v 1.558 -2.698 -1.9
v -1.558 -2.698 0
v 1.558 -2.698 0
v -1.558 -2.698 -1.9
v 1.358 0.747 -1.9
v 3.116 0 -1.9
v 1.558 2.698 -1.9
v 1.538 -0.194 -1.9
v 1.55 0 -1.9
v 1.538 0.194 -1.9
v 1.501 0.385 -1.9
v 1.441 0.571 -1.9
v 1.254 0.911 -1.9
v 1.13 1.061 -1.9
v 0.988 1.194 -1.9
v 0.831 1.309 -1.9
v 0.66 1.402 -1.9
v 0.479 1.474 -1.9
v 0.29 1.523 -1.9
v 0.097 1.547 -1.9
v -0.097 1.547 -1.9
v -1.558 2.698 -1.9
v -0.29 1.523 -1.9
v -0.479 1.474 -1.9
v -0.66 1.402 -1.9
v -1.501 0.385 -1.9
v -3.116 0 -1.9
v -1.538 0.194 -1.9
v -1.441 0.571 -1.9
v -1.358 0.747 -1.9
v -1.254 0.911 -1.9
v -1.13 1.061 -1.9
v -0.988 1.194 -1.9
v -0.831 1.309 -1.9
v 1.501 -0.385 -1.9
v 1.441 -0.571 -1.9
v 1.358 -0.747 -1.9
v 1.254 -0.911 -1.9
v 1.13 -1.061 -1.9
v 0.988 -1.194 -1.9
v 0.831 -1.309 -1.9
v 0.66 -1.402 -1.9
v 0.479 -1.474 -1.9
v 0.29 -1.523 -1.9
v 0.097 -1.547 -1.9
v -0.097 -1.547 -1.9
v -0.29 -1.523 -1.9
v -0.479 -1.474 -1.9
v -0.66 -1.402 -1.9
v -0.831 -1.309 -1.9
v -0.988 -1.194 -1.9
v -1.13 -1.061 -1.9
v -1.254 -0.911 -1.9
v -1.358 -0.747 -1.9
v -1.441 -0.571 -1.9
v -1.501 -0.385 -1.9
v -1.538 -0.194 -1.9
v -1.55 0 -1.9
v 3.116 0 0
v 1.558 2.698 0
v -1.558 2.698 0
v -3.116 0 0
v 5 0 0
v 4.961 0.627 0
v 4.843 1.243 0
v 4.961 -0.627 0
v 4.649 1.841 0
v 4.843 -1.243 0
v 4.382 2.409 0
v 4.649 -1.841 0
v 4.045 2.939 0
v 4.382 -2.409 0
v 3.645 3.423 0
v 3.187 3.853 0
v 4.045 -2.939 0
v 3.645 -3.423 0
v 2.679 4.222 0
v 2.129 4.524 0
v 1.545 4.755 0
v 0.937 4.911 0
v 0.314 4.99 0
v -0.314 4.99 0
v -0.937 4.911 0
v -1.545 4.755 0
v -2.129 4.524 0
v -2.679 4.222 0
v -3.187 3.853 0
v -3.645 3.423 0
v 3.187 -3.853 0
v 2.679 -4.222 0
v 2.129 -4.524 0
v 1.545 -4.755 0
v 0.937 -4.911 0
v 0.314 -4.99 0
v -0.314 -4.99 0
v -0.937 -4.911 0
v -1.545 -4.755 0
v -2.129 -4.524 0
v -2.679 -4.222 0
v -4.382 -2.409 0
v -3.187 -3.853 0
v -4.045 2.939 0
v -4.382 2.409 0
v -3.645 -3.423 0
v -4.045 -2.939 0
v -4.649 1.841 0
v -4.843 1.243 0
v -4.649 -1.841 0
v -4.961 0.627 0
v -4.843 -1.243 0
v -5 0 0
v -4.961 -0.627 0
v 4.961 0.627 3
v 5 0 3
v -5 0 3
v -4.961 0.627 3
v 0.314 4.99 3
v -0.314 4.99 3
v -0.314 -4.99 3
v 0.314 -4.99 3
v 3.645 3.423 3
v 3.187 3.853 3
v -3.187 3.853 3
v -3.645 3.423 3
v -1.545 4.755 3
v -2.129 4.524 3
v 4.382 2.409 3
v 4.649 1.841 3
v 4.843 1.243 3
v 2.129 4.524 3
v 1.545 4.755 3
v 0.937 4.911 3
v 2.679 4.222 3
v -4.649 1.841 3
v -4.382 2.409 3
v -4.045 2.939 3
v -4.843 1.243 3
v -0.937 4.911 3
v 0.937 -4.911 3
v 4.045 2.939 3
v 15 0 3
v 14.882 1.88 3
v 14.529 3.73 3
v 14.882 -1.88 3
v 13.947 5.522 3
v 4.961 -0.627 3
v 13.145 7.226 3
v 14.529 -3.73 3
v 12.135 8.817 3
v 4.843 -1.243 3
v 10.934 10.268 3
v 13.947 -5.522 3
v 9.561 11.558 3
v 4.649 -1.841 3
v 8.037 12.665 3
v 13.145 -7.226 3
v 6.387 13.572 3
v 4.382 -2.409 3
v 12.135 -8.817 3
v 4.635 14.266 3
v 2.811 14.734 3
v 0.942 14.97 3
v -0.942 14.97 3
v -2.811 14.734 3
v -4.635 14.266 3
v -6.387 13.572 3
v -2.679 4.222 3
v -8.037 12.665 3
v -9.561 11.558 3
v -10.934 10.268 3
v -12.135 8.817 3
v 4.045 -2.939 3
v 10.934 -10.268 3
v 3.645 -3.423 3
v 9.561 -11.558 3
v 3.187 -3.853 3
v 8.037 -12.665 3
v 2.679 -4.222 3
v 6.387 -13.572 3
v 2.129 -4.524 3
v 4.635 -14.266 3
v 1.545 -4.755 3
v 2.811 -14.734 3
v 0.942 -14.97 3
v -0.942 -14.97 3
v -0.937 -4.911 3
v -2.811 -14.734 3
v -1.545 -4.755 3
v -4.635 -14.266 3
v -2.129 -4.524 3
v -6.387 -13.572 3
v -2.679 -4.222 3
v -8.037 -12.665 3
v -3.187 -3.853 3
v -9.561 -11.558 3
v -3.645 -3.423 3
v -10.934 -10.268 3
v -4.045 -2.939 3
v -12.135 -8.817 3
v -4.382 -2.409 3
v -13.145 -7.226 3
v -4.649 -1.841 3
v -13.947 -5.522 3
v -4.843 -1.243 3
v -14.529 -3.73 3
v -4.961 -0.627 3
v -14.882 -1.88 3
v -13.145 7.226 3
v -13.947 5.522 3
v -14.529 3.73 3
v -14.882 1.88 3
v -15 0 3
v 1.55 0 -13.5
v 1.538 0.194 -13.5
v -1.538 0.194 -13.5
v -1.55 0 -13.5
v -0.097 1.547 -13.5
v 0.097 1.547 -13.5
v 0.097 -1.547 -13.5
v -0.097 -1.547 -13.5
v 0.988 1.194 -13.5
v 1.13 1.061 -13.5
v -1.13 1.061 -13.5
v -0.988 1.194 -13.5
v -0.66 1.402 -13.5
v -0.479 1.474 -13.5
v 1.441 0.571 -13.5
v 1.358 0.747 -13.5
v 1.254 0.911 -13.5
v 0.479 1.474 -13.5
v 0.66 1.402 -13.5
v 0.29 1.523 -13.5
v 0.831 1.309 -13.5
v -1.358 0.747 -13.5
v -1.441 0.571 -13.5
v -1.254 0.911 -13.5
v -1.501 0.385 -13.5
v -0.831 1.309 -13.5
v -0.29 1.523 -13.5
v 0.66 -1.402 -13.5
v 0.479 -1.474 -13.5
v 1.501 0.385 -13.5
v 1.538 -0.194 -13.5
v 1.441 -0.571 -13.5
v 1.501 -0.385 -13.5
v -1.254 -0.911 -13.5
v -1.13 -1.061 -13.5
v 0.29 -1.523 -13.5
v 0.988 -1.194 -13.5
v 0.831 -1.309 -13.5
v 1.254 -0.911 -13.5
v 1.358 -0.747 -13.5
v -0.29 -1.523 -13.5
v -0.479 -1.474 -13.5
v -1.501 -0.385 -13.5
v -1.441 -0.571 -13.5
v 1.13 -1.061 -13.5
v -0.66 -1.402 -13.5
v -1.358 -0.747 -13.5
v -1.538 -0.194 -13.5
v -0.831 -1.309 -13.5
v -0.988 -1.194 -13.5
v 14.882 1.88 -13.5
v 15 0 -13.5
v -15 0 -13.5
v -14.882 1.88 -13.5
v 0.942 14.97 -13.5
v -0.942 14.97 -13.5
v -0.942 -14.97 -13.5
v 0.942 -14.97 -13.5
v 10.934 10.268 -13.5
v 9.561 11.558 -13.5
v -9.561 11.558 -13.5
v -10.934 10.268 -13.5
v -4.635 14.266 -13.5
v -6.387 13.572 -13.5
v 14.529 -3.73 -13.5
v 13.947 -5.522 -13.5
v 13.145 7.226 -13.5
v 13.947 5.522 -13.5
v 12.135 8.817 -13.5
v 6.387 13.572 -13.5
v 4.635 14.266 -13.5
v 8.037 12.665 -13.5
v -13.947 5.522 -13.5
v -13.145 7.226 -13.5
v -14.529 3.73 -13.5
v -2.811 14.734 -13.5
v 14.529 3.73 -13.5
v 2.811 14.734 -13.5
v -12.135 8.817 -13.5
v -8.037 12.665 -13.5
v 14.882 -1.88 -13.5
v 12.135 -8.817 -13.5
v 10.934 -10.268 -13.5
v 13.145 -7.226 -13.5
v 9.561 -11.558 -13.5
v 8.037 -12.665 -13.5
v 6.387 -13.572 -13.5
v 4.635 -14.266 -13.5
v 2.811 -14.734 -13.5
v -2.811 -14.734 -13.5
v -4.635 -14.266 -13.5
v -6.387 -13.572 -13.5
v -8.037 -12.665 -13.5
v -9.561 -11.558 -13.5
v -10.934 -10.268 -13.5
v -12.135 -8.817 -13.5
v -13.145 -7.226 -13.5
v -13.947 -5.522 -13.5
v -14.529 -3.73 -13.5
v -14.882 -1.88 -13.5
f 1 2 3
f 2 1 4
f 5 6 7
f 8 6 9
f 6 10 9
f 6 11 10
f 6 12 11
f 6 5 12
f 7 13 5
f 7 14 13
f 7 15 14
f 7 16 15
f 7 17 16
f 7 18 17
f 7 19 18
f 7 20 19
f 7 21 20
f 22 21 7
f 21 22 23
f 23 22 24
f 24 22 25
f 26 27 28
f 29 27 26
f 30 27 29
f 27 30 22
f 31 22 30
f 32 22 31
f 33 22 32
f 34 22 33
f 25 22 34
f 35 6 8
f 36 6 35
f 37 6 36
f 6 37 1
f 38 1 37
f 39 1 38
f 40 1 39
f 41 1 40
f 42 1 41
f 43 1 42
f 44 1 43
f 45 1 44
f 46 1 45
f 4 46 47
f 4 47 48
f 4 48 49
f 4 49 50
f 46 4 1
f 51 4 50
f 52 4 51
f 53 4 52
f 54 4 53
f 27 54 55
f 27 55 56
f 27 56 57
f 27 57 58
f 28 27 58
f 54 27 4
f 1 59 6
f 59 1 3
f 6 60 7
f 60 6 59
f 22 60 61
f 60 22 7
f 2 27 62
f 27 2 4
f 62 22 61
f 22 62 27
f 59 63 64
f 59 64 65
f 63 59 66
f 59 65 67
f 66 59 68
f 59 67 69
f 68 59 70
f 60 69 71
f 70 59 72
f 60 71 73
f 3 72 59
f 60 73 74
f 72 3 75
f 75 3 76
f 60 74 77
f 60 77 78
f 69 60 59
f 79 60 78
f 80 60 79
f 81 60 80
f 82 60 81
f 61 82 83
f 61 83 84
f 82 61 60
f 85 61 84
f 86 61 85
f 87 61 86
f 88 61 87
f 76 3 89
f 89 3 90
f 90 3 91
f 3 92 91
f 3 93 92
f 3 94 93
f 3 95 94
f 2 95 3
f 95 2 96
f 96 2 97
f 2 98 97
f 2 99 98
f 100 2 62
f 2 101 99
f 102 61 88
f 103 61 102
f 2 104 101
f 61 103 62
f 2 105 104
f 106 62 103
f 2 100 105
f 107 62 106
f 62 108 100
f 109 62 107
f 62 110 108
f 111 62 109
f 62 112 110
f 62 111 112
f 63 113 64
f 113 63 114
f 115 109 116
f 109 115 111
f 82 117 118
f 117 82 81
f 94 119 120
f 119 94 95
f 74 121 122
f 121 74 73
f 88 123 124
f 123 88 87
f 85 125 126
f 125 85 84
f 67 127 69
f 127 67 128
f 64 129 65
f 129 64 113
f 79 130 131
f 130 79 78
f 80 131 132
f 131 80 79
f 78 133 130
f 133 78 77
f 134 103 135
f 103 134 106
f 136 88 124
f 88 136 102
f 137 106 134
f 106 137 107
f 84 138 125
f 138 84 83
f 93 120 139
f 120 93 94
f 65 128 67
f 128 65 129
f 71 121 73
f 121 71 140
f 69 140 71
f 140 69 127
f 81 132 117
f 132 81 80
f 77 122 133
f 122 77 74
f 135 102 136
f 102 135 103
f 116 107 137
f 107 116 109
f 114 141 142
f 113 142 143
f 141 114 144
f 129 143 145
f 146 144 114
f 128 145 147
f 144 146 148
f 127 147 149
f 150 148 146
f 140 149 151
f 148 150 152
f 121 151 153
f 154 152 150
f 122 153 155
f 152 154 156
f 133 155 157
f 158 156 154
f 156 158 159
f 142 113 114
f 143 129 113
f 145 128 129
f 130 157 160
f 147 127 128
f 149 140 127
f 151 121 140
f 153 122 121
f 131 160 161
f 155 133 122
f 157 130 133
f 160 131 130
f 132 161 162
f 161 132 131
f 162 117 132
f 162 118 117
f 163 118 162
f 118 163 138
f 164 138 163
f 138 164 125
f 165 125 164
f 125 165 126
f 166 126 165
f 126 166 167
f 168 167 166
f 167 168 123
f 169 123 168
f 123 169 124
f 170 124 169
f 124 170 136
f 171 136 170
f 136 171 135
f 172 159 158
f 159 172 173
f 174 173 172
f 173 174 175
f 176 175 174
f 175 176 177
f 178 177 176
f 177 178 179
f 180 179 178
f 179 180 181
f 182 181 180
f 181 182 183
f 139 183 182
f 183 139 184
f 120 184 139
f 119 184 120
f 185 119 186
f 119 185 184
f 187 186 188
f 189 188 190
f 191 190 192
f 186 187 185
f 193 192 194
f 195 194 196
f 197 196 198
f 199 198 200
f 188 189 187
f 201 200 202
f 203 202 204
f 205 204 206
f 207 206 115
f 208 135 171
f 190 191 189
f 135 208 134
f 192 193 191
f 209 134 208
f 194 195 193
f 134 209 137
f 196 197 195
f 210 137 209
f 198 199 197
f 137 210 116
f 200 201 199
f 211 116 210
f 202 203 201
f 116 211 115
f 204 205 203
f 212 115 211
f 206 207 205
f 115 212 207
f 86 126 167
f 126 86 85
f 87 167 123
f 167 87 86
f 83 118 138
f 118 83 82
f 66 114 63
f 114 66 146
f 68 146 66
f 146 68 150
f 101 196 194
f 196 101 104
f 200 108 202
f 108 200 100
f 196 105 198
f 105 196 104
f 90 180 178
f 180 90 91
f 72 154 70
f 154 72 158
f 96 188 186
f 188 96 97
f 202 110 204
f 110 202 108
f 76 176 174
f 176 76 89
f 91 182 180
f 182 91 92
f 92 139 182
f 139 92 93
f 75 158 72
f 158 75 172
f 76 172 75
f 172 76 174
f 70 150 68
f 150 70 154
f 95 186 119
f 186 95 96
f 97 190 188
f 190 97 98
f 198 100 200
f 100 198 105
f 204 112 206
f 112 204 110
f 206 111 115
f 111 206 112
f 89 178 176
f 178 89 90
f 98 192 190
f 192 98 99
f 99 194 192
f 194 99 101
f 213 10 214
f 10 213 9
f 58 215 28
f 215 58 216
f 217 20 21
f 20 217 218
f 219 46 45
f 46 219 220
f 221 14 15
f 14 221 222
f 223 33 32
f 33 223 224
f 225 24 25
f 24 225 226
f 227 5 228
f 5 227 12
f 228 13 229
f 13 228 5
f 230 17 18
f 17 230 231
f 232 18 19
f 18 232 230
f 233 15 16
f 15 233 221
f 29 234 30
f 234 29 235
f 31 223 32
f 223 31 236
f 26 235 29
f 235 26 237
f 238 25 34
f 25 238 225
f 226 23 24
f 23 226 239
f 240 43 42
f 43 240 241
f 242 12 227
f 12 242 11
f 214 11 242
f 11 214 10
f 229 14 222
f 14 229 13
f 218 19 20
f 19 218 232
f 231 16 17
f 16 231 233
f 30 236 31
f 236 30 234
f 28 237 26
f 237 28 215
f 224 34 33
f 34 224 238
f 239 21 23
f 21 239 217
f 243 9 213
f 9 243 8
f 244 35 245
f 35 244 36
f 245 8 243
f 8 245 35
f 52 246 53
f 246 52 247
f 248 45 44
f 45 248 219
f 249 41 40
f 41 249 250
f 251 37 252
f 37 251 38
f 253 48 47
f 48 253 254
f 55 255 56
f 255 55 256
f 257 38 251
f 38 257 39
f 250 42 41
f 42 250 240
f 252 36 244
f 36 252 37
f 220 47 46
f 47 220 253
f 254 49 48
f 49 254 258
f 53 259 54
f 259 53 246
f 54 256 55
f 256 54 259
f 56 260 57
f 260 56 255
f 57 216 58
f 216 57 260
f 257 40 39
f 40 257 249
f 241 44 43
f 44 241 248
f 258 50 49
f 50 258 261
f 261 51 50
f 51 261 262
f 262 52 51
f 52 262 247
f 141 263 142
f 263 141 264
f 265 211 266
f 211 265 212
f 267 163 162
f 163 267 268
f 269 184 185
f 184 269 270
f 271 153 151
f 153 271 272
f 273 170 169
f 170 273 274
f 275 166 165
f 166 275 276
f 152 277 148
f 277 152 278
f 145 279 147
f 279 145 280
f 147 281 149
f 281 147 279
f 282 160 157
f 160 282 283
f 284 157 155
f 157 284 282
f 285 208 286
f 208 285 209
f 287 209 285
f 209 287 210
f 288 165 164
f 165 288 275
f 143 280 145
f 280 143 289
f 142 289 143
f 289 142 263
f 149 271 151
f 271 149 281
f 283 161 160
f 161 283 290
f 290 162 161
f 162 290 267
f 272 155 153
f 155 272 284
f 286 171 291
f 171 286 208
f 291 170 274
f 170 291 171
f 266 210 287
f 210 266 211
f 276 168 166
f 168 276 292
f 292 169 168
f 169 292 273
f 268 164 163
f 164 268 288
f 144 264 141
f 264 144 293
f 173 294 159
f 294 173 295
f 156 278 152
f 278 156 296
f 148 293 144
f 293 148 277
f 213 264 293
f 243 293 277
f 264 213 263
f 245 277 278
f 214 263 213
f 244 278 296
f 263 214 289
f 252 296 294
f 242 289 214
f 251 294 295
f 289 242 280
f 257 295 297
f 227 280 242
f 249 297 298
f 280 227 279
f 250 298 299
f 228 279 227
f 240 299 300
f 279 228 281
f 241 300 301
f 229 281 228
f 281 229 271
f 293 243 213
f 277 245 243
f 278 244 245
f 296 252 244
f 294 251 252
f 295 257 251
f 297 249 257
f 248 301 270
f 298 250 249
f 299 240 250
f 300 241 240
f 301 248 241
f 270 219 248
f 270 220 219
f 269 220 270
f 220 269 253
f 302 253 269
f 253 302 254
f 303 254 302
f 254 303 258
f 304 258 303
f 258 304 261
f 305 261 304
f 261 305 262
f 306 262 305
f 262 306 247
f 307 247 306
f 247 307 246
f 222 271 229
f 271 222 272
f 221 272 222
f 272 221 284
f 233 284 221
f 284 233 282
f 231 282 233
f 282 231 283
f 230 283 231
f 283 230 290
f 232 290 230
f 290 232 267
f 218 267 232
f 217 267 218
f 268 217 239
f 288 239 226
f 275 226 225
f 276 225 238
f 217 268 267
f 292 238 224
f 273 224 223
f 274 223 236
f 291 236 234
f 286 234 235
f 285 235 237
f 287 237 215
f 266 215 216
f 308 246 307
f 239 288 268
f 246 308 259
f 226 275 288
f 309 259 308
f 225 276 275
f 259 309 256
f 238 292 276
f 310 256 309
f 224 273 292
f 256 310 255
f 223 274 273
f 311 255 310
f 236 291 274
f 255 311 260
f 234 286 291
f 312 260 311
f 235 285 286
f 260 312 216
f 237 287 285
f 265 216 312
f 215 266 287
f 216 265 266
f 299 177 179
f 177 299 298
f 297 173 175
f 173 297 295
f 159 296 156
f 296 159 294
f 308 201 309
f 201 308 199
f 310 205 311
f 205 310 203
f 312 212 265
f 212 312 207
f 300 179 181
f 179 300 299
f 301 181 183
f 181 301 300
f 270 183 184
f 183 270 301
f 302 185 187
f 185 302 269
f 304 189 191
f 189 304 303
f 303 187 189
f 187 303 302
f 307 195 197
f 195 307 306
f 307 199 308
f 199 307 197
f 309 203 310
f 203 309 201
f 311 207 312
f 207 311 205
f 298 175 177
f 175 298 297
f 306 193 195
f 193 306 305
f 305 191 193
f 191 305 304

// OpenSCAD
$fn = 50;


difference() {
	union() {
		translate(v = [0, 0, -13.5000000000]) {
			cylinder(h = 16.5000000000, r = 15.0000000000);
		}
	}
	union() {
		translate(v = [0, 0, 0]) {
			rotate(a = [0, 0, 0]) {
				difference() {
					union() {
						translate(v = [0, 0, -1.9000000000]) {
							linear_extrude(height = 1.9000000000) {
								polygon(points = [[3.1158000000, 0.0000000000], [1.5579000000, 2.6983619531], [-1.5579000000, 2.6983619531], [-3.1158000000, 0.0000000000], [-1.5579000000, -2.6983619531], [1.5579000000, -2.6983619531]]);
							}
						}
					}
					union();
				}
			}
		}
		#cylinder(h = 3, r = 5.0000000000);
		#translate(v = [0, 0, -100.0000000000]) {
			cylinder(h = 200, r = 1.5500000000);
		}
	}
}
